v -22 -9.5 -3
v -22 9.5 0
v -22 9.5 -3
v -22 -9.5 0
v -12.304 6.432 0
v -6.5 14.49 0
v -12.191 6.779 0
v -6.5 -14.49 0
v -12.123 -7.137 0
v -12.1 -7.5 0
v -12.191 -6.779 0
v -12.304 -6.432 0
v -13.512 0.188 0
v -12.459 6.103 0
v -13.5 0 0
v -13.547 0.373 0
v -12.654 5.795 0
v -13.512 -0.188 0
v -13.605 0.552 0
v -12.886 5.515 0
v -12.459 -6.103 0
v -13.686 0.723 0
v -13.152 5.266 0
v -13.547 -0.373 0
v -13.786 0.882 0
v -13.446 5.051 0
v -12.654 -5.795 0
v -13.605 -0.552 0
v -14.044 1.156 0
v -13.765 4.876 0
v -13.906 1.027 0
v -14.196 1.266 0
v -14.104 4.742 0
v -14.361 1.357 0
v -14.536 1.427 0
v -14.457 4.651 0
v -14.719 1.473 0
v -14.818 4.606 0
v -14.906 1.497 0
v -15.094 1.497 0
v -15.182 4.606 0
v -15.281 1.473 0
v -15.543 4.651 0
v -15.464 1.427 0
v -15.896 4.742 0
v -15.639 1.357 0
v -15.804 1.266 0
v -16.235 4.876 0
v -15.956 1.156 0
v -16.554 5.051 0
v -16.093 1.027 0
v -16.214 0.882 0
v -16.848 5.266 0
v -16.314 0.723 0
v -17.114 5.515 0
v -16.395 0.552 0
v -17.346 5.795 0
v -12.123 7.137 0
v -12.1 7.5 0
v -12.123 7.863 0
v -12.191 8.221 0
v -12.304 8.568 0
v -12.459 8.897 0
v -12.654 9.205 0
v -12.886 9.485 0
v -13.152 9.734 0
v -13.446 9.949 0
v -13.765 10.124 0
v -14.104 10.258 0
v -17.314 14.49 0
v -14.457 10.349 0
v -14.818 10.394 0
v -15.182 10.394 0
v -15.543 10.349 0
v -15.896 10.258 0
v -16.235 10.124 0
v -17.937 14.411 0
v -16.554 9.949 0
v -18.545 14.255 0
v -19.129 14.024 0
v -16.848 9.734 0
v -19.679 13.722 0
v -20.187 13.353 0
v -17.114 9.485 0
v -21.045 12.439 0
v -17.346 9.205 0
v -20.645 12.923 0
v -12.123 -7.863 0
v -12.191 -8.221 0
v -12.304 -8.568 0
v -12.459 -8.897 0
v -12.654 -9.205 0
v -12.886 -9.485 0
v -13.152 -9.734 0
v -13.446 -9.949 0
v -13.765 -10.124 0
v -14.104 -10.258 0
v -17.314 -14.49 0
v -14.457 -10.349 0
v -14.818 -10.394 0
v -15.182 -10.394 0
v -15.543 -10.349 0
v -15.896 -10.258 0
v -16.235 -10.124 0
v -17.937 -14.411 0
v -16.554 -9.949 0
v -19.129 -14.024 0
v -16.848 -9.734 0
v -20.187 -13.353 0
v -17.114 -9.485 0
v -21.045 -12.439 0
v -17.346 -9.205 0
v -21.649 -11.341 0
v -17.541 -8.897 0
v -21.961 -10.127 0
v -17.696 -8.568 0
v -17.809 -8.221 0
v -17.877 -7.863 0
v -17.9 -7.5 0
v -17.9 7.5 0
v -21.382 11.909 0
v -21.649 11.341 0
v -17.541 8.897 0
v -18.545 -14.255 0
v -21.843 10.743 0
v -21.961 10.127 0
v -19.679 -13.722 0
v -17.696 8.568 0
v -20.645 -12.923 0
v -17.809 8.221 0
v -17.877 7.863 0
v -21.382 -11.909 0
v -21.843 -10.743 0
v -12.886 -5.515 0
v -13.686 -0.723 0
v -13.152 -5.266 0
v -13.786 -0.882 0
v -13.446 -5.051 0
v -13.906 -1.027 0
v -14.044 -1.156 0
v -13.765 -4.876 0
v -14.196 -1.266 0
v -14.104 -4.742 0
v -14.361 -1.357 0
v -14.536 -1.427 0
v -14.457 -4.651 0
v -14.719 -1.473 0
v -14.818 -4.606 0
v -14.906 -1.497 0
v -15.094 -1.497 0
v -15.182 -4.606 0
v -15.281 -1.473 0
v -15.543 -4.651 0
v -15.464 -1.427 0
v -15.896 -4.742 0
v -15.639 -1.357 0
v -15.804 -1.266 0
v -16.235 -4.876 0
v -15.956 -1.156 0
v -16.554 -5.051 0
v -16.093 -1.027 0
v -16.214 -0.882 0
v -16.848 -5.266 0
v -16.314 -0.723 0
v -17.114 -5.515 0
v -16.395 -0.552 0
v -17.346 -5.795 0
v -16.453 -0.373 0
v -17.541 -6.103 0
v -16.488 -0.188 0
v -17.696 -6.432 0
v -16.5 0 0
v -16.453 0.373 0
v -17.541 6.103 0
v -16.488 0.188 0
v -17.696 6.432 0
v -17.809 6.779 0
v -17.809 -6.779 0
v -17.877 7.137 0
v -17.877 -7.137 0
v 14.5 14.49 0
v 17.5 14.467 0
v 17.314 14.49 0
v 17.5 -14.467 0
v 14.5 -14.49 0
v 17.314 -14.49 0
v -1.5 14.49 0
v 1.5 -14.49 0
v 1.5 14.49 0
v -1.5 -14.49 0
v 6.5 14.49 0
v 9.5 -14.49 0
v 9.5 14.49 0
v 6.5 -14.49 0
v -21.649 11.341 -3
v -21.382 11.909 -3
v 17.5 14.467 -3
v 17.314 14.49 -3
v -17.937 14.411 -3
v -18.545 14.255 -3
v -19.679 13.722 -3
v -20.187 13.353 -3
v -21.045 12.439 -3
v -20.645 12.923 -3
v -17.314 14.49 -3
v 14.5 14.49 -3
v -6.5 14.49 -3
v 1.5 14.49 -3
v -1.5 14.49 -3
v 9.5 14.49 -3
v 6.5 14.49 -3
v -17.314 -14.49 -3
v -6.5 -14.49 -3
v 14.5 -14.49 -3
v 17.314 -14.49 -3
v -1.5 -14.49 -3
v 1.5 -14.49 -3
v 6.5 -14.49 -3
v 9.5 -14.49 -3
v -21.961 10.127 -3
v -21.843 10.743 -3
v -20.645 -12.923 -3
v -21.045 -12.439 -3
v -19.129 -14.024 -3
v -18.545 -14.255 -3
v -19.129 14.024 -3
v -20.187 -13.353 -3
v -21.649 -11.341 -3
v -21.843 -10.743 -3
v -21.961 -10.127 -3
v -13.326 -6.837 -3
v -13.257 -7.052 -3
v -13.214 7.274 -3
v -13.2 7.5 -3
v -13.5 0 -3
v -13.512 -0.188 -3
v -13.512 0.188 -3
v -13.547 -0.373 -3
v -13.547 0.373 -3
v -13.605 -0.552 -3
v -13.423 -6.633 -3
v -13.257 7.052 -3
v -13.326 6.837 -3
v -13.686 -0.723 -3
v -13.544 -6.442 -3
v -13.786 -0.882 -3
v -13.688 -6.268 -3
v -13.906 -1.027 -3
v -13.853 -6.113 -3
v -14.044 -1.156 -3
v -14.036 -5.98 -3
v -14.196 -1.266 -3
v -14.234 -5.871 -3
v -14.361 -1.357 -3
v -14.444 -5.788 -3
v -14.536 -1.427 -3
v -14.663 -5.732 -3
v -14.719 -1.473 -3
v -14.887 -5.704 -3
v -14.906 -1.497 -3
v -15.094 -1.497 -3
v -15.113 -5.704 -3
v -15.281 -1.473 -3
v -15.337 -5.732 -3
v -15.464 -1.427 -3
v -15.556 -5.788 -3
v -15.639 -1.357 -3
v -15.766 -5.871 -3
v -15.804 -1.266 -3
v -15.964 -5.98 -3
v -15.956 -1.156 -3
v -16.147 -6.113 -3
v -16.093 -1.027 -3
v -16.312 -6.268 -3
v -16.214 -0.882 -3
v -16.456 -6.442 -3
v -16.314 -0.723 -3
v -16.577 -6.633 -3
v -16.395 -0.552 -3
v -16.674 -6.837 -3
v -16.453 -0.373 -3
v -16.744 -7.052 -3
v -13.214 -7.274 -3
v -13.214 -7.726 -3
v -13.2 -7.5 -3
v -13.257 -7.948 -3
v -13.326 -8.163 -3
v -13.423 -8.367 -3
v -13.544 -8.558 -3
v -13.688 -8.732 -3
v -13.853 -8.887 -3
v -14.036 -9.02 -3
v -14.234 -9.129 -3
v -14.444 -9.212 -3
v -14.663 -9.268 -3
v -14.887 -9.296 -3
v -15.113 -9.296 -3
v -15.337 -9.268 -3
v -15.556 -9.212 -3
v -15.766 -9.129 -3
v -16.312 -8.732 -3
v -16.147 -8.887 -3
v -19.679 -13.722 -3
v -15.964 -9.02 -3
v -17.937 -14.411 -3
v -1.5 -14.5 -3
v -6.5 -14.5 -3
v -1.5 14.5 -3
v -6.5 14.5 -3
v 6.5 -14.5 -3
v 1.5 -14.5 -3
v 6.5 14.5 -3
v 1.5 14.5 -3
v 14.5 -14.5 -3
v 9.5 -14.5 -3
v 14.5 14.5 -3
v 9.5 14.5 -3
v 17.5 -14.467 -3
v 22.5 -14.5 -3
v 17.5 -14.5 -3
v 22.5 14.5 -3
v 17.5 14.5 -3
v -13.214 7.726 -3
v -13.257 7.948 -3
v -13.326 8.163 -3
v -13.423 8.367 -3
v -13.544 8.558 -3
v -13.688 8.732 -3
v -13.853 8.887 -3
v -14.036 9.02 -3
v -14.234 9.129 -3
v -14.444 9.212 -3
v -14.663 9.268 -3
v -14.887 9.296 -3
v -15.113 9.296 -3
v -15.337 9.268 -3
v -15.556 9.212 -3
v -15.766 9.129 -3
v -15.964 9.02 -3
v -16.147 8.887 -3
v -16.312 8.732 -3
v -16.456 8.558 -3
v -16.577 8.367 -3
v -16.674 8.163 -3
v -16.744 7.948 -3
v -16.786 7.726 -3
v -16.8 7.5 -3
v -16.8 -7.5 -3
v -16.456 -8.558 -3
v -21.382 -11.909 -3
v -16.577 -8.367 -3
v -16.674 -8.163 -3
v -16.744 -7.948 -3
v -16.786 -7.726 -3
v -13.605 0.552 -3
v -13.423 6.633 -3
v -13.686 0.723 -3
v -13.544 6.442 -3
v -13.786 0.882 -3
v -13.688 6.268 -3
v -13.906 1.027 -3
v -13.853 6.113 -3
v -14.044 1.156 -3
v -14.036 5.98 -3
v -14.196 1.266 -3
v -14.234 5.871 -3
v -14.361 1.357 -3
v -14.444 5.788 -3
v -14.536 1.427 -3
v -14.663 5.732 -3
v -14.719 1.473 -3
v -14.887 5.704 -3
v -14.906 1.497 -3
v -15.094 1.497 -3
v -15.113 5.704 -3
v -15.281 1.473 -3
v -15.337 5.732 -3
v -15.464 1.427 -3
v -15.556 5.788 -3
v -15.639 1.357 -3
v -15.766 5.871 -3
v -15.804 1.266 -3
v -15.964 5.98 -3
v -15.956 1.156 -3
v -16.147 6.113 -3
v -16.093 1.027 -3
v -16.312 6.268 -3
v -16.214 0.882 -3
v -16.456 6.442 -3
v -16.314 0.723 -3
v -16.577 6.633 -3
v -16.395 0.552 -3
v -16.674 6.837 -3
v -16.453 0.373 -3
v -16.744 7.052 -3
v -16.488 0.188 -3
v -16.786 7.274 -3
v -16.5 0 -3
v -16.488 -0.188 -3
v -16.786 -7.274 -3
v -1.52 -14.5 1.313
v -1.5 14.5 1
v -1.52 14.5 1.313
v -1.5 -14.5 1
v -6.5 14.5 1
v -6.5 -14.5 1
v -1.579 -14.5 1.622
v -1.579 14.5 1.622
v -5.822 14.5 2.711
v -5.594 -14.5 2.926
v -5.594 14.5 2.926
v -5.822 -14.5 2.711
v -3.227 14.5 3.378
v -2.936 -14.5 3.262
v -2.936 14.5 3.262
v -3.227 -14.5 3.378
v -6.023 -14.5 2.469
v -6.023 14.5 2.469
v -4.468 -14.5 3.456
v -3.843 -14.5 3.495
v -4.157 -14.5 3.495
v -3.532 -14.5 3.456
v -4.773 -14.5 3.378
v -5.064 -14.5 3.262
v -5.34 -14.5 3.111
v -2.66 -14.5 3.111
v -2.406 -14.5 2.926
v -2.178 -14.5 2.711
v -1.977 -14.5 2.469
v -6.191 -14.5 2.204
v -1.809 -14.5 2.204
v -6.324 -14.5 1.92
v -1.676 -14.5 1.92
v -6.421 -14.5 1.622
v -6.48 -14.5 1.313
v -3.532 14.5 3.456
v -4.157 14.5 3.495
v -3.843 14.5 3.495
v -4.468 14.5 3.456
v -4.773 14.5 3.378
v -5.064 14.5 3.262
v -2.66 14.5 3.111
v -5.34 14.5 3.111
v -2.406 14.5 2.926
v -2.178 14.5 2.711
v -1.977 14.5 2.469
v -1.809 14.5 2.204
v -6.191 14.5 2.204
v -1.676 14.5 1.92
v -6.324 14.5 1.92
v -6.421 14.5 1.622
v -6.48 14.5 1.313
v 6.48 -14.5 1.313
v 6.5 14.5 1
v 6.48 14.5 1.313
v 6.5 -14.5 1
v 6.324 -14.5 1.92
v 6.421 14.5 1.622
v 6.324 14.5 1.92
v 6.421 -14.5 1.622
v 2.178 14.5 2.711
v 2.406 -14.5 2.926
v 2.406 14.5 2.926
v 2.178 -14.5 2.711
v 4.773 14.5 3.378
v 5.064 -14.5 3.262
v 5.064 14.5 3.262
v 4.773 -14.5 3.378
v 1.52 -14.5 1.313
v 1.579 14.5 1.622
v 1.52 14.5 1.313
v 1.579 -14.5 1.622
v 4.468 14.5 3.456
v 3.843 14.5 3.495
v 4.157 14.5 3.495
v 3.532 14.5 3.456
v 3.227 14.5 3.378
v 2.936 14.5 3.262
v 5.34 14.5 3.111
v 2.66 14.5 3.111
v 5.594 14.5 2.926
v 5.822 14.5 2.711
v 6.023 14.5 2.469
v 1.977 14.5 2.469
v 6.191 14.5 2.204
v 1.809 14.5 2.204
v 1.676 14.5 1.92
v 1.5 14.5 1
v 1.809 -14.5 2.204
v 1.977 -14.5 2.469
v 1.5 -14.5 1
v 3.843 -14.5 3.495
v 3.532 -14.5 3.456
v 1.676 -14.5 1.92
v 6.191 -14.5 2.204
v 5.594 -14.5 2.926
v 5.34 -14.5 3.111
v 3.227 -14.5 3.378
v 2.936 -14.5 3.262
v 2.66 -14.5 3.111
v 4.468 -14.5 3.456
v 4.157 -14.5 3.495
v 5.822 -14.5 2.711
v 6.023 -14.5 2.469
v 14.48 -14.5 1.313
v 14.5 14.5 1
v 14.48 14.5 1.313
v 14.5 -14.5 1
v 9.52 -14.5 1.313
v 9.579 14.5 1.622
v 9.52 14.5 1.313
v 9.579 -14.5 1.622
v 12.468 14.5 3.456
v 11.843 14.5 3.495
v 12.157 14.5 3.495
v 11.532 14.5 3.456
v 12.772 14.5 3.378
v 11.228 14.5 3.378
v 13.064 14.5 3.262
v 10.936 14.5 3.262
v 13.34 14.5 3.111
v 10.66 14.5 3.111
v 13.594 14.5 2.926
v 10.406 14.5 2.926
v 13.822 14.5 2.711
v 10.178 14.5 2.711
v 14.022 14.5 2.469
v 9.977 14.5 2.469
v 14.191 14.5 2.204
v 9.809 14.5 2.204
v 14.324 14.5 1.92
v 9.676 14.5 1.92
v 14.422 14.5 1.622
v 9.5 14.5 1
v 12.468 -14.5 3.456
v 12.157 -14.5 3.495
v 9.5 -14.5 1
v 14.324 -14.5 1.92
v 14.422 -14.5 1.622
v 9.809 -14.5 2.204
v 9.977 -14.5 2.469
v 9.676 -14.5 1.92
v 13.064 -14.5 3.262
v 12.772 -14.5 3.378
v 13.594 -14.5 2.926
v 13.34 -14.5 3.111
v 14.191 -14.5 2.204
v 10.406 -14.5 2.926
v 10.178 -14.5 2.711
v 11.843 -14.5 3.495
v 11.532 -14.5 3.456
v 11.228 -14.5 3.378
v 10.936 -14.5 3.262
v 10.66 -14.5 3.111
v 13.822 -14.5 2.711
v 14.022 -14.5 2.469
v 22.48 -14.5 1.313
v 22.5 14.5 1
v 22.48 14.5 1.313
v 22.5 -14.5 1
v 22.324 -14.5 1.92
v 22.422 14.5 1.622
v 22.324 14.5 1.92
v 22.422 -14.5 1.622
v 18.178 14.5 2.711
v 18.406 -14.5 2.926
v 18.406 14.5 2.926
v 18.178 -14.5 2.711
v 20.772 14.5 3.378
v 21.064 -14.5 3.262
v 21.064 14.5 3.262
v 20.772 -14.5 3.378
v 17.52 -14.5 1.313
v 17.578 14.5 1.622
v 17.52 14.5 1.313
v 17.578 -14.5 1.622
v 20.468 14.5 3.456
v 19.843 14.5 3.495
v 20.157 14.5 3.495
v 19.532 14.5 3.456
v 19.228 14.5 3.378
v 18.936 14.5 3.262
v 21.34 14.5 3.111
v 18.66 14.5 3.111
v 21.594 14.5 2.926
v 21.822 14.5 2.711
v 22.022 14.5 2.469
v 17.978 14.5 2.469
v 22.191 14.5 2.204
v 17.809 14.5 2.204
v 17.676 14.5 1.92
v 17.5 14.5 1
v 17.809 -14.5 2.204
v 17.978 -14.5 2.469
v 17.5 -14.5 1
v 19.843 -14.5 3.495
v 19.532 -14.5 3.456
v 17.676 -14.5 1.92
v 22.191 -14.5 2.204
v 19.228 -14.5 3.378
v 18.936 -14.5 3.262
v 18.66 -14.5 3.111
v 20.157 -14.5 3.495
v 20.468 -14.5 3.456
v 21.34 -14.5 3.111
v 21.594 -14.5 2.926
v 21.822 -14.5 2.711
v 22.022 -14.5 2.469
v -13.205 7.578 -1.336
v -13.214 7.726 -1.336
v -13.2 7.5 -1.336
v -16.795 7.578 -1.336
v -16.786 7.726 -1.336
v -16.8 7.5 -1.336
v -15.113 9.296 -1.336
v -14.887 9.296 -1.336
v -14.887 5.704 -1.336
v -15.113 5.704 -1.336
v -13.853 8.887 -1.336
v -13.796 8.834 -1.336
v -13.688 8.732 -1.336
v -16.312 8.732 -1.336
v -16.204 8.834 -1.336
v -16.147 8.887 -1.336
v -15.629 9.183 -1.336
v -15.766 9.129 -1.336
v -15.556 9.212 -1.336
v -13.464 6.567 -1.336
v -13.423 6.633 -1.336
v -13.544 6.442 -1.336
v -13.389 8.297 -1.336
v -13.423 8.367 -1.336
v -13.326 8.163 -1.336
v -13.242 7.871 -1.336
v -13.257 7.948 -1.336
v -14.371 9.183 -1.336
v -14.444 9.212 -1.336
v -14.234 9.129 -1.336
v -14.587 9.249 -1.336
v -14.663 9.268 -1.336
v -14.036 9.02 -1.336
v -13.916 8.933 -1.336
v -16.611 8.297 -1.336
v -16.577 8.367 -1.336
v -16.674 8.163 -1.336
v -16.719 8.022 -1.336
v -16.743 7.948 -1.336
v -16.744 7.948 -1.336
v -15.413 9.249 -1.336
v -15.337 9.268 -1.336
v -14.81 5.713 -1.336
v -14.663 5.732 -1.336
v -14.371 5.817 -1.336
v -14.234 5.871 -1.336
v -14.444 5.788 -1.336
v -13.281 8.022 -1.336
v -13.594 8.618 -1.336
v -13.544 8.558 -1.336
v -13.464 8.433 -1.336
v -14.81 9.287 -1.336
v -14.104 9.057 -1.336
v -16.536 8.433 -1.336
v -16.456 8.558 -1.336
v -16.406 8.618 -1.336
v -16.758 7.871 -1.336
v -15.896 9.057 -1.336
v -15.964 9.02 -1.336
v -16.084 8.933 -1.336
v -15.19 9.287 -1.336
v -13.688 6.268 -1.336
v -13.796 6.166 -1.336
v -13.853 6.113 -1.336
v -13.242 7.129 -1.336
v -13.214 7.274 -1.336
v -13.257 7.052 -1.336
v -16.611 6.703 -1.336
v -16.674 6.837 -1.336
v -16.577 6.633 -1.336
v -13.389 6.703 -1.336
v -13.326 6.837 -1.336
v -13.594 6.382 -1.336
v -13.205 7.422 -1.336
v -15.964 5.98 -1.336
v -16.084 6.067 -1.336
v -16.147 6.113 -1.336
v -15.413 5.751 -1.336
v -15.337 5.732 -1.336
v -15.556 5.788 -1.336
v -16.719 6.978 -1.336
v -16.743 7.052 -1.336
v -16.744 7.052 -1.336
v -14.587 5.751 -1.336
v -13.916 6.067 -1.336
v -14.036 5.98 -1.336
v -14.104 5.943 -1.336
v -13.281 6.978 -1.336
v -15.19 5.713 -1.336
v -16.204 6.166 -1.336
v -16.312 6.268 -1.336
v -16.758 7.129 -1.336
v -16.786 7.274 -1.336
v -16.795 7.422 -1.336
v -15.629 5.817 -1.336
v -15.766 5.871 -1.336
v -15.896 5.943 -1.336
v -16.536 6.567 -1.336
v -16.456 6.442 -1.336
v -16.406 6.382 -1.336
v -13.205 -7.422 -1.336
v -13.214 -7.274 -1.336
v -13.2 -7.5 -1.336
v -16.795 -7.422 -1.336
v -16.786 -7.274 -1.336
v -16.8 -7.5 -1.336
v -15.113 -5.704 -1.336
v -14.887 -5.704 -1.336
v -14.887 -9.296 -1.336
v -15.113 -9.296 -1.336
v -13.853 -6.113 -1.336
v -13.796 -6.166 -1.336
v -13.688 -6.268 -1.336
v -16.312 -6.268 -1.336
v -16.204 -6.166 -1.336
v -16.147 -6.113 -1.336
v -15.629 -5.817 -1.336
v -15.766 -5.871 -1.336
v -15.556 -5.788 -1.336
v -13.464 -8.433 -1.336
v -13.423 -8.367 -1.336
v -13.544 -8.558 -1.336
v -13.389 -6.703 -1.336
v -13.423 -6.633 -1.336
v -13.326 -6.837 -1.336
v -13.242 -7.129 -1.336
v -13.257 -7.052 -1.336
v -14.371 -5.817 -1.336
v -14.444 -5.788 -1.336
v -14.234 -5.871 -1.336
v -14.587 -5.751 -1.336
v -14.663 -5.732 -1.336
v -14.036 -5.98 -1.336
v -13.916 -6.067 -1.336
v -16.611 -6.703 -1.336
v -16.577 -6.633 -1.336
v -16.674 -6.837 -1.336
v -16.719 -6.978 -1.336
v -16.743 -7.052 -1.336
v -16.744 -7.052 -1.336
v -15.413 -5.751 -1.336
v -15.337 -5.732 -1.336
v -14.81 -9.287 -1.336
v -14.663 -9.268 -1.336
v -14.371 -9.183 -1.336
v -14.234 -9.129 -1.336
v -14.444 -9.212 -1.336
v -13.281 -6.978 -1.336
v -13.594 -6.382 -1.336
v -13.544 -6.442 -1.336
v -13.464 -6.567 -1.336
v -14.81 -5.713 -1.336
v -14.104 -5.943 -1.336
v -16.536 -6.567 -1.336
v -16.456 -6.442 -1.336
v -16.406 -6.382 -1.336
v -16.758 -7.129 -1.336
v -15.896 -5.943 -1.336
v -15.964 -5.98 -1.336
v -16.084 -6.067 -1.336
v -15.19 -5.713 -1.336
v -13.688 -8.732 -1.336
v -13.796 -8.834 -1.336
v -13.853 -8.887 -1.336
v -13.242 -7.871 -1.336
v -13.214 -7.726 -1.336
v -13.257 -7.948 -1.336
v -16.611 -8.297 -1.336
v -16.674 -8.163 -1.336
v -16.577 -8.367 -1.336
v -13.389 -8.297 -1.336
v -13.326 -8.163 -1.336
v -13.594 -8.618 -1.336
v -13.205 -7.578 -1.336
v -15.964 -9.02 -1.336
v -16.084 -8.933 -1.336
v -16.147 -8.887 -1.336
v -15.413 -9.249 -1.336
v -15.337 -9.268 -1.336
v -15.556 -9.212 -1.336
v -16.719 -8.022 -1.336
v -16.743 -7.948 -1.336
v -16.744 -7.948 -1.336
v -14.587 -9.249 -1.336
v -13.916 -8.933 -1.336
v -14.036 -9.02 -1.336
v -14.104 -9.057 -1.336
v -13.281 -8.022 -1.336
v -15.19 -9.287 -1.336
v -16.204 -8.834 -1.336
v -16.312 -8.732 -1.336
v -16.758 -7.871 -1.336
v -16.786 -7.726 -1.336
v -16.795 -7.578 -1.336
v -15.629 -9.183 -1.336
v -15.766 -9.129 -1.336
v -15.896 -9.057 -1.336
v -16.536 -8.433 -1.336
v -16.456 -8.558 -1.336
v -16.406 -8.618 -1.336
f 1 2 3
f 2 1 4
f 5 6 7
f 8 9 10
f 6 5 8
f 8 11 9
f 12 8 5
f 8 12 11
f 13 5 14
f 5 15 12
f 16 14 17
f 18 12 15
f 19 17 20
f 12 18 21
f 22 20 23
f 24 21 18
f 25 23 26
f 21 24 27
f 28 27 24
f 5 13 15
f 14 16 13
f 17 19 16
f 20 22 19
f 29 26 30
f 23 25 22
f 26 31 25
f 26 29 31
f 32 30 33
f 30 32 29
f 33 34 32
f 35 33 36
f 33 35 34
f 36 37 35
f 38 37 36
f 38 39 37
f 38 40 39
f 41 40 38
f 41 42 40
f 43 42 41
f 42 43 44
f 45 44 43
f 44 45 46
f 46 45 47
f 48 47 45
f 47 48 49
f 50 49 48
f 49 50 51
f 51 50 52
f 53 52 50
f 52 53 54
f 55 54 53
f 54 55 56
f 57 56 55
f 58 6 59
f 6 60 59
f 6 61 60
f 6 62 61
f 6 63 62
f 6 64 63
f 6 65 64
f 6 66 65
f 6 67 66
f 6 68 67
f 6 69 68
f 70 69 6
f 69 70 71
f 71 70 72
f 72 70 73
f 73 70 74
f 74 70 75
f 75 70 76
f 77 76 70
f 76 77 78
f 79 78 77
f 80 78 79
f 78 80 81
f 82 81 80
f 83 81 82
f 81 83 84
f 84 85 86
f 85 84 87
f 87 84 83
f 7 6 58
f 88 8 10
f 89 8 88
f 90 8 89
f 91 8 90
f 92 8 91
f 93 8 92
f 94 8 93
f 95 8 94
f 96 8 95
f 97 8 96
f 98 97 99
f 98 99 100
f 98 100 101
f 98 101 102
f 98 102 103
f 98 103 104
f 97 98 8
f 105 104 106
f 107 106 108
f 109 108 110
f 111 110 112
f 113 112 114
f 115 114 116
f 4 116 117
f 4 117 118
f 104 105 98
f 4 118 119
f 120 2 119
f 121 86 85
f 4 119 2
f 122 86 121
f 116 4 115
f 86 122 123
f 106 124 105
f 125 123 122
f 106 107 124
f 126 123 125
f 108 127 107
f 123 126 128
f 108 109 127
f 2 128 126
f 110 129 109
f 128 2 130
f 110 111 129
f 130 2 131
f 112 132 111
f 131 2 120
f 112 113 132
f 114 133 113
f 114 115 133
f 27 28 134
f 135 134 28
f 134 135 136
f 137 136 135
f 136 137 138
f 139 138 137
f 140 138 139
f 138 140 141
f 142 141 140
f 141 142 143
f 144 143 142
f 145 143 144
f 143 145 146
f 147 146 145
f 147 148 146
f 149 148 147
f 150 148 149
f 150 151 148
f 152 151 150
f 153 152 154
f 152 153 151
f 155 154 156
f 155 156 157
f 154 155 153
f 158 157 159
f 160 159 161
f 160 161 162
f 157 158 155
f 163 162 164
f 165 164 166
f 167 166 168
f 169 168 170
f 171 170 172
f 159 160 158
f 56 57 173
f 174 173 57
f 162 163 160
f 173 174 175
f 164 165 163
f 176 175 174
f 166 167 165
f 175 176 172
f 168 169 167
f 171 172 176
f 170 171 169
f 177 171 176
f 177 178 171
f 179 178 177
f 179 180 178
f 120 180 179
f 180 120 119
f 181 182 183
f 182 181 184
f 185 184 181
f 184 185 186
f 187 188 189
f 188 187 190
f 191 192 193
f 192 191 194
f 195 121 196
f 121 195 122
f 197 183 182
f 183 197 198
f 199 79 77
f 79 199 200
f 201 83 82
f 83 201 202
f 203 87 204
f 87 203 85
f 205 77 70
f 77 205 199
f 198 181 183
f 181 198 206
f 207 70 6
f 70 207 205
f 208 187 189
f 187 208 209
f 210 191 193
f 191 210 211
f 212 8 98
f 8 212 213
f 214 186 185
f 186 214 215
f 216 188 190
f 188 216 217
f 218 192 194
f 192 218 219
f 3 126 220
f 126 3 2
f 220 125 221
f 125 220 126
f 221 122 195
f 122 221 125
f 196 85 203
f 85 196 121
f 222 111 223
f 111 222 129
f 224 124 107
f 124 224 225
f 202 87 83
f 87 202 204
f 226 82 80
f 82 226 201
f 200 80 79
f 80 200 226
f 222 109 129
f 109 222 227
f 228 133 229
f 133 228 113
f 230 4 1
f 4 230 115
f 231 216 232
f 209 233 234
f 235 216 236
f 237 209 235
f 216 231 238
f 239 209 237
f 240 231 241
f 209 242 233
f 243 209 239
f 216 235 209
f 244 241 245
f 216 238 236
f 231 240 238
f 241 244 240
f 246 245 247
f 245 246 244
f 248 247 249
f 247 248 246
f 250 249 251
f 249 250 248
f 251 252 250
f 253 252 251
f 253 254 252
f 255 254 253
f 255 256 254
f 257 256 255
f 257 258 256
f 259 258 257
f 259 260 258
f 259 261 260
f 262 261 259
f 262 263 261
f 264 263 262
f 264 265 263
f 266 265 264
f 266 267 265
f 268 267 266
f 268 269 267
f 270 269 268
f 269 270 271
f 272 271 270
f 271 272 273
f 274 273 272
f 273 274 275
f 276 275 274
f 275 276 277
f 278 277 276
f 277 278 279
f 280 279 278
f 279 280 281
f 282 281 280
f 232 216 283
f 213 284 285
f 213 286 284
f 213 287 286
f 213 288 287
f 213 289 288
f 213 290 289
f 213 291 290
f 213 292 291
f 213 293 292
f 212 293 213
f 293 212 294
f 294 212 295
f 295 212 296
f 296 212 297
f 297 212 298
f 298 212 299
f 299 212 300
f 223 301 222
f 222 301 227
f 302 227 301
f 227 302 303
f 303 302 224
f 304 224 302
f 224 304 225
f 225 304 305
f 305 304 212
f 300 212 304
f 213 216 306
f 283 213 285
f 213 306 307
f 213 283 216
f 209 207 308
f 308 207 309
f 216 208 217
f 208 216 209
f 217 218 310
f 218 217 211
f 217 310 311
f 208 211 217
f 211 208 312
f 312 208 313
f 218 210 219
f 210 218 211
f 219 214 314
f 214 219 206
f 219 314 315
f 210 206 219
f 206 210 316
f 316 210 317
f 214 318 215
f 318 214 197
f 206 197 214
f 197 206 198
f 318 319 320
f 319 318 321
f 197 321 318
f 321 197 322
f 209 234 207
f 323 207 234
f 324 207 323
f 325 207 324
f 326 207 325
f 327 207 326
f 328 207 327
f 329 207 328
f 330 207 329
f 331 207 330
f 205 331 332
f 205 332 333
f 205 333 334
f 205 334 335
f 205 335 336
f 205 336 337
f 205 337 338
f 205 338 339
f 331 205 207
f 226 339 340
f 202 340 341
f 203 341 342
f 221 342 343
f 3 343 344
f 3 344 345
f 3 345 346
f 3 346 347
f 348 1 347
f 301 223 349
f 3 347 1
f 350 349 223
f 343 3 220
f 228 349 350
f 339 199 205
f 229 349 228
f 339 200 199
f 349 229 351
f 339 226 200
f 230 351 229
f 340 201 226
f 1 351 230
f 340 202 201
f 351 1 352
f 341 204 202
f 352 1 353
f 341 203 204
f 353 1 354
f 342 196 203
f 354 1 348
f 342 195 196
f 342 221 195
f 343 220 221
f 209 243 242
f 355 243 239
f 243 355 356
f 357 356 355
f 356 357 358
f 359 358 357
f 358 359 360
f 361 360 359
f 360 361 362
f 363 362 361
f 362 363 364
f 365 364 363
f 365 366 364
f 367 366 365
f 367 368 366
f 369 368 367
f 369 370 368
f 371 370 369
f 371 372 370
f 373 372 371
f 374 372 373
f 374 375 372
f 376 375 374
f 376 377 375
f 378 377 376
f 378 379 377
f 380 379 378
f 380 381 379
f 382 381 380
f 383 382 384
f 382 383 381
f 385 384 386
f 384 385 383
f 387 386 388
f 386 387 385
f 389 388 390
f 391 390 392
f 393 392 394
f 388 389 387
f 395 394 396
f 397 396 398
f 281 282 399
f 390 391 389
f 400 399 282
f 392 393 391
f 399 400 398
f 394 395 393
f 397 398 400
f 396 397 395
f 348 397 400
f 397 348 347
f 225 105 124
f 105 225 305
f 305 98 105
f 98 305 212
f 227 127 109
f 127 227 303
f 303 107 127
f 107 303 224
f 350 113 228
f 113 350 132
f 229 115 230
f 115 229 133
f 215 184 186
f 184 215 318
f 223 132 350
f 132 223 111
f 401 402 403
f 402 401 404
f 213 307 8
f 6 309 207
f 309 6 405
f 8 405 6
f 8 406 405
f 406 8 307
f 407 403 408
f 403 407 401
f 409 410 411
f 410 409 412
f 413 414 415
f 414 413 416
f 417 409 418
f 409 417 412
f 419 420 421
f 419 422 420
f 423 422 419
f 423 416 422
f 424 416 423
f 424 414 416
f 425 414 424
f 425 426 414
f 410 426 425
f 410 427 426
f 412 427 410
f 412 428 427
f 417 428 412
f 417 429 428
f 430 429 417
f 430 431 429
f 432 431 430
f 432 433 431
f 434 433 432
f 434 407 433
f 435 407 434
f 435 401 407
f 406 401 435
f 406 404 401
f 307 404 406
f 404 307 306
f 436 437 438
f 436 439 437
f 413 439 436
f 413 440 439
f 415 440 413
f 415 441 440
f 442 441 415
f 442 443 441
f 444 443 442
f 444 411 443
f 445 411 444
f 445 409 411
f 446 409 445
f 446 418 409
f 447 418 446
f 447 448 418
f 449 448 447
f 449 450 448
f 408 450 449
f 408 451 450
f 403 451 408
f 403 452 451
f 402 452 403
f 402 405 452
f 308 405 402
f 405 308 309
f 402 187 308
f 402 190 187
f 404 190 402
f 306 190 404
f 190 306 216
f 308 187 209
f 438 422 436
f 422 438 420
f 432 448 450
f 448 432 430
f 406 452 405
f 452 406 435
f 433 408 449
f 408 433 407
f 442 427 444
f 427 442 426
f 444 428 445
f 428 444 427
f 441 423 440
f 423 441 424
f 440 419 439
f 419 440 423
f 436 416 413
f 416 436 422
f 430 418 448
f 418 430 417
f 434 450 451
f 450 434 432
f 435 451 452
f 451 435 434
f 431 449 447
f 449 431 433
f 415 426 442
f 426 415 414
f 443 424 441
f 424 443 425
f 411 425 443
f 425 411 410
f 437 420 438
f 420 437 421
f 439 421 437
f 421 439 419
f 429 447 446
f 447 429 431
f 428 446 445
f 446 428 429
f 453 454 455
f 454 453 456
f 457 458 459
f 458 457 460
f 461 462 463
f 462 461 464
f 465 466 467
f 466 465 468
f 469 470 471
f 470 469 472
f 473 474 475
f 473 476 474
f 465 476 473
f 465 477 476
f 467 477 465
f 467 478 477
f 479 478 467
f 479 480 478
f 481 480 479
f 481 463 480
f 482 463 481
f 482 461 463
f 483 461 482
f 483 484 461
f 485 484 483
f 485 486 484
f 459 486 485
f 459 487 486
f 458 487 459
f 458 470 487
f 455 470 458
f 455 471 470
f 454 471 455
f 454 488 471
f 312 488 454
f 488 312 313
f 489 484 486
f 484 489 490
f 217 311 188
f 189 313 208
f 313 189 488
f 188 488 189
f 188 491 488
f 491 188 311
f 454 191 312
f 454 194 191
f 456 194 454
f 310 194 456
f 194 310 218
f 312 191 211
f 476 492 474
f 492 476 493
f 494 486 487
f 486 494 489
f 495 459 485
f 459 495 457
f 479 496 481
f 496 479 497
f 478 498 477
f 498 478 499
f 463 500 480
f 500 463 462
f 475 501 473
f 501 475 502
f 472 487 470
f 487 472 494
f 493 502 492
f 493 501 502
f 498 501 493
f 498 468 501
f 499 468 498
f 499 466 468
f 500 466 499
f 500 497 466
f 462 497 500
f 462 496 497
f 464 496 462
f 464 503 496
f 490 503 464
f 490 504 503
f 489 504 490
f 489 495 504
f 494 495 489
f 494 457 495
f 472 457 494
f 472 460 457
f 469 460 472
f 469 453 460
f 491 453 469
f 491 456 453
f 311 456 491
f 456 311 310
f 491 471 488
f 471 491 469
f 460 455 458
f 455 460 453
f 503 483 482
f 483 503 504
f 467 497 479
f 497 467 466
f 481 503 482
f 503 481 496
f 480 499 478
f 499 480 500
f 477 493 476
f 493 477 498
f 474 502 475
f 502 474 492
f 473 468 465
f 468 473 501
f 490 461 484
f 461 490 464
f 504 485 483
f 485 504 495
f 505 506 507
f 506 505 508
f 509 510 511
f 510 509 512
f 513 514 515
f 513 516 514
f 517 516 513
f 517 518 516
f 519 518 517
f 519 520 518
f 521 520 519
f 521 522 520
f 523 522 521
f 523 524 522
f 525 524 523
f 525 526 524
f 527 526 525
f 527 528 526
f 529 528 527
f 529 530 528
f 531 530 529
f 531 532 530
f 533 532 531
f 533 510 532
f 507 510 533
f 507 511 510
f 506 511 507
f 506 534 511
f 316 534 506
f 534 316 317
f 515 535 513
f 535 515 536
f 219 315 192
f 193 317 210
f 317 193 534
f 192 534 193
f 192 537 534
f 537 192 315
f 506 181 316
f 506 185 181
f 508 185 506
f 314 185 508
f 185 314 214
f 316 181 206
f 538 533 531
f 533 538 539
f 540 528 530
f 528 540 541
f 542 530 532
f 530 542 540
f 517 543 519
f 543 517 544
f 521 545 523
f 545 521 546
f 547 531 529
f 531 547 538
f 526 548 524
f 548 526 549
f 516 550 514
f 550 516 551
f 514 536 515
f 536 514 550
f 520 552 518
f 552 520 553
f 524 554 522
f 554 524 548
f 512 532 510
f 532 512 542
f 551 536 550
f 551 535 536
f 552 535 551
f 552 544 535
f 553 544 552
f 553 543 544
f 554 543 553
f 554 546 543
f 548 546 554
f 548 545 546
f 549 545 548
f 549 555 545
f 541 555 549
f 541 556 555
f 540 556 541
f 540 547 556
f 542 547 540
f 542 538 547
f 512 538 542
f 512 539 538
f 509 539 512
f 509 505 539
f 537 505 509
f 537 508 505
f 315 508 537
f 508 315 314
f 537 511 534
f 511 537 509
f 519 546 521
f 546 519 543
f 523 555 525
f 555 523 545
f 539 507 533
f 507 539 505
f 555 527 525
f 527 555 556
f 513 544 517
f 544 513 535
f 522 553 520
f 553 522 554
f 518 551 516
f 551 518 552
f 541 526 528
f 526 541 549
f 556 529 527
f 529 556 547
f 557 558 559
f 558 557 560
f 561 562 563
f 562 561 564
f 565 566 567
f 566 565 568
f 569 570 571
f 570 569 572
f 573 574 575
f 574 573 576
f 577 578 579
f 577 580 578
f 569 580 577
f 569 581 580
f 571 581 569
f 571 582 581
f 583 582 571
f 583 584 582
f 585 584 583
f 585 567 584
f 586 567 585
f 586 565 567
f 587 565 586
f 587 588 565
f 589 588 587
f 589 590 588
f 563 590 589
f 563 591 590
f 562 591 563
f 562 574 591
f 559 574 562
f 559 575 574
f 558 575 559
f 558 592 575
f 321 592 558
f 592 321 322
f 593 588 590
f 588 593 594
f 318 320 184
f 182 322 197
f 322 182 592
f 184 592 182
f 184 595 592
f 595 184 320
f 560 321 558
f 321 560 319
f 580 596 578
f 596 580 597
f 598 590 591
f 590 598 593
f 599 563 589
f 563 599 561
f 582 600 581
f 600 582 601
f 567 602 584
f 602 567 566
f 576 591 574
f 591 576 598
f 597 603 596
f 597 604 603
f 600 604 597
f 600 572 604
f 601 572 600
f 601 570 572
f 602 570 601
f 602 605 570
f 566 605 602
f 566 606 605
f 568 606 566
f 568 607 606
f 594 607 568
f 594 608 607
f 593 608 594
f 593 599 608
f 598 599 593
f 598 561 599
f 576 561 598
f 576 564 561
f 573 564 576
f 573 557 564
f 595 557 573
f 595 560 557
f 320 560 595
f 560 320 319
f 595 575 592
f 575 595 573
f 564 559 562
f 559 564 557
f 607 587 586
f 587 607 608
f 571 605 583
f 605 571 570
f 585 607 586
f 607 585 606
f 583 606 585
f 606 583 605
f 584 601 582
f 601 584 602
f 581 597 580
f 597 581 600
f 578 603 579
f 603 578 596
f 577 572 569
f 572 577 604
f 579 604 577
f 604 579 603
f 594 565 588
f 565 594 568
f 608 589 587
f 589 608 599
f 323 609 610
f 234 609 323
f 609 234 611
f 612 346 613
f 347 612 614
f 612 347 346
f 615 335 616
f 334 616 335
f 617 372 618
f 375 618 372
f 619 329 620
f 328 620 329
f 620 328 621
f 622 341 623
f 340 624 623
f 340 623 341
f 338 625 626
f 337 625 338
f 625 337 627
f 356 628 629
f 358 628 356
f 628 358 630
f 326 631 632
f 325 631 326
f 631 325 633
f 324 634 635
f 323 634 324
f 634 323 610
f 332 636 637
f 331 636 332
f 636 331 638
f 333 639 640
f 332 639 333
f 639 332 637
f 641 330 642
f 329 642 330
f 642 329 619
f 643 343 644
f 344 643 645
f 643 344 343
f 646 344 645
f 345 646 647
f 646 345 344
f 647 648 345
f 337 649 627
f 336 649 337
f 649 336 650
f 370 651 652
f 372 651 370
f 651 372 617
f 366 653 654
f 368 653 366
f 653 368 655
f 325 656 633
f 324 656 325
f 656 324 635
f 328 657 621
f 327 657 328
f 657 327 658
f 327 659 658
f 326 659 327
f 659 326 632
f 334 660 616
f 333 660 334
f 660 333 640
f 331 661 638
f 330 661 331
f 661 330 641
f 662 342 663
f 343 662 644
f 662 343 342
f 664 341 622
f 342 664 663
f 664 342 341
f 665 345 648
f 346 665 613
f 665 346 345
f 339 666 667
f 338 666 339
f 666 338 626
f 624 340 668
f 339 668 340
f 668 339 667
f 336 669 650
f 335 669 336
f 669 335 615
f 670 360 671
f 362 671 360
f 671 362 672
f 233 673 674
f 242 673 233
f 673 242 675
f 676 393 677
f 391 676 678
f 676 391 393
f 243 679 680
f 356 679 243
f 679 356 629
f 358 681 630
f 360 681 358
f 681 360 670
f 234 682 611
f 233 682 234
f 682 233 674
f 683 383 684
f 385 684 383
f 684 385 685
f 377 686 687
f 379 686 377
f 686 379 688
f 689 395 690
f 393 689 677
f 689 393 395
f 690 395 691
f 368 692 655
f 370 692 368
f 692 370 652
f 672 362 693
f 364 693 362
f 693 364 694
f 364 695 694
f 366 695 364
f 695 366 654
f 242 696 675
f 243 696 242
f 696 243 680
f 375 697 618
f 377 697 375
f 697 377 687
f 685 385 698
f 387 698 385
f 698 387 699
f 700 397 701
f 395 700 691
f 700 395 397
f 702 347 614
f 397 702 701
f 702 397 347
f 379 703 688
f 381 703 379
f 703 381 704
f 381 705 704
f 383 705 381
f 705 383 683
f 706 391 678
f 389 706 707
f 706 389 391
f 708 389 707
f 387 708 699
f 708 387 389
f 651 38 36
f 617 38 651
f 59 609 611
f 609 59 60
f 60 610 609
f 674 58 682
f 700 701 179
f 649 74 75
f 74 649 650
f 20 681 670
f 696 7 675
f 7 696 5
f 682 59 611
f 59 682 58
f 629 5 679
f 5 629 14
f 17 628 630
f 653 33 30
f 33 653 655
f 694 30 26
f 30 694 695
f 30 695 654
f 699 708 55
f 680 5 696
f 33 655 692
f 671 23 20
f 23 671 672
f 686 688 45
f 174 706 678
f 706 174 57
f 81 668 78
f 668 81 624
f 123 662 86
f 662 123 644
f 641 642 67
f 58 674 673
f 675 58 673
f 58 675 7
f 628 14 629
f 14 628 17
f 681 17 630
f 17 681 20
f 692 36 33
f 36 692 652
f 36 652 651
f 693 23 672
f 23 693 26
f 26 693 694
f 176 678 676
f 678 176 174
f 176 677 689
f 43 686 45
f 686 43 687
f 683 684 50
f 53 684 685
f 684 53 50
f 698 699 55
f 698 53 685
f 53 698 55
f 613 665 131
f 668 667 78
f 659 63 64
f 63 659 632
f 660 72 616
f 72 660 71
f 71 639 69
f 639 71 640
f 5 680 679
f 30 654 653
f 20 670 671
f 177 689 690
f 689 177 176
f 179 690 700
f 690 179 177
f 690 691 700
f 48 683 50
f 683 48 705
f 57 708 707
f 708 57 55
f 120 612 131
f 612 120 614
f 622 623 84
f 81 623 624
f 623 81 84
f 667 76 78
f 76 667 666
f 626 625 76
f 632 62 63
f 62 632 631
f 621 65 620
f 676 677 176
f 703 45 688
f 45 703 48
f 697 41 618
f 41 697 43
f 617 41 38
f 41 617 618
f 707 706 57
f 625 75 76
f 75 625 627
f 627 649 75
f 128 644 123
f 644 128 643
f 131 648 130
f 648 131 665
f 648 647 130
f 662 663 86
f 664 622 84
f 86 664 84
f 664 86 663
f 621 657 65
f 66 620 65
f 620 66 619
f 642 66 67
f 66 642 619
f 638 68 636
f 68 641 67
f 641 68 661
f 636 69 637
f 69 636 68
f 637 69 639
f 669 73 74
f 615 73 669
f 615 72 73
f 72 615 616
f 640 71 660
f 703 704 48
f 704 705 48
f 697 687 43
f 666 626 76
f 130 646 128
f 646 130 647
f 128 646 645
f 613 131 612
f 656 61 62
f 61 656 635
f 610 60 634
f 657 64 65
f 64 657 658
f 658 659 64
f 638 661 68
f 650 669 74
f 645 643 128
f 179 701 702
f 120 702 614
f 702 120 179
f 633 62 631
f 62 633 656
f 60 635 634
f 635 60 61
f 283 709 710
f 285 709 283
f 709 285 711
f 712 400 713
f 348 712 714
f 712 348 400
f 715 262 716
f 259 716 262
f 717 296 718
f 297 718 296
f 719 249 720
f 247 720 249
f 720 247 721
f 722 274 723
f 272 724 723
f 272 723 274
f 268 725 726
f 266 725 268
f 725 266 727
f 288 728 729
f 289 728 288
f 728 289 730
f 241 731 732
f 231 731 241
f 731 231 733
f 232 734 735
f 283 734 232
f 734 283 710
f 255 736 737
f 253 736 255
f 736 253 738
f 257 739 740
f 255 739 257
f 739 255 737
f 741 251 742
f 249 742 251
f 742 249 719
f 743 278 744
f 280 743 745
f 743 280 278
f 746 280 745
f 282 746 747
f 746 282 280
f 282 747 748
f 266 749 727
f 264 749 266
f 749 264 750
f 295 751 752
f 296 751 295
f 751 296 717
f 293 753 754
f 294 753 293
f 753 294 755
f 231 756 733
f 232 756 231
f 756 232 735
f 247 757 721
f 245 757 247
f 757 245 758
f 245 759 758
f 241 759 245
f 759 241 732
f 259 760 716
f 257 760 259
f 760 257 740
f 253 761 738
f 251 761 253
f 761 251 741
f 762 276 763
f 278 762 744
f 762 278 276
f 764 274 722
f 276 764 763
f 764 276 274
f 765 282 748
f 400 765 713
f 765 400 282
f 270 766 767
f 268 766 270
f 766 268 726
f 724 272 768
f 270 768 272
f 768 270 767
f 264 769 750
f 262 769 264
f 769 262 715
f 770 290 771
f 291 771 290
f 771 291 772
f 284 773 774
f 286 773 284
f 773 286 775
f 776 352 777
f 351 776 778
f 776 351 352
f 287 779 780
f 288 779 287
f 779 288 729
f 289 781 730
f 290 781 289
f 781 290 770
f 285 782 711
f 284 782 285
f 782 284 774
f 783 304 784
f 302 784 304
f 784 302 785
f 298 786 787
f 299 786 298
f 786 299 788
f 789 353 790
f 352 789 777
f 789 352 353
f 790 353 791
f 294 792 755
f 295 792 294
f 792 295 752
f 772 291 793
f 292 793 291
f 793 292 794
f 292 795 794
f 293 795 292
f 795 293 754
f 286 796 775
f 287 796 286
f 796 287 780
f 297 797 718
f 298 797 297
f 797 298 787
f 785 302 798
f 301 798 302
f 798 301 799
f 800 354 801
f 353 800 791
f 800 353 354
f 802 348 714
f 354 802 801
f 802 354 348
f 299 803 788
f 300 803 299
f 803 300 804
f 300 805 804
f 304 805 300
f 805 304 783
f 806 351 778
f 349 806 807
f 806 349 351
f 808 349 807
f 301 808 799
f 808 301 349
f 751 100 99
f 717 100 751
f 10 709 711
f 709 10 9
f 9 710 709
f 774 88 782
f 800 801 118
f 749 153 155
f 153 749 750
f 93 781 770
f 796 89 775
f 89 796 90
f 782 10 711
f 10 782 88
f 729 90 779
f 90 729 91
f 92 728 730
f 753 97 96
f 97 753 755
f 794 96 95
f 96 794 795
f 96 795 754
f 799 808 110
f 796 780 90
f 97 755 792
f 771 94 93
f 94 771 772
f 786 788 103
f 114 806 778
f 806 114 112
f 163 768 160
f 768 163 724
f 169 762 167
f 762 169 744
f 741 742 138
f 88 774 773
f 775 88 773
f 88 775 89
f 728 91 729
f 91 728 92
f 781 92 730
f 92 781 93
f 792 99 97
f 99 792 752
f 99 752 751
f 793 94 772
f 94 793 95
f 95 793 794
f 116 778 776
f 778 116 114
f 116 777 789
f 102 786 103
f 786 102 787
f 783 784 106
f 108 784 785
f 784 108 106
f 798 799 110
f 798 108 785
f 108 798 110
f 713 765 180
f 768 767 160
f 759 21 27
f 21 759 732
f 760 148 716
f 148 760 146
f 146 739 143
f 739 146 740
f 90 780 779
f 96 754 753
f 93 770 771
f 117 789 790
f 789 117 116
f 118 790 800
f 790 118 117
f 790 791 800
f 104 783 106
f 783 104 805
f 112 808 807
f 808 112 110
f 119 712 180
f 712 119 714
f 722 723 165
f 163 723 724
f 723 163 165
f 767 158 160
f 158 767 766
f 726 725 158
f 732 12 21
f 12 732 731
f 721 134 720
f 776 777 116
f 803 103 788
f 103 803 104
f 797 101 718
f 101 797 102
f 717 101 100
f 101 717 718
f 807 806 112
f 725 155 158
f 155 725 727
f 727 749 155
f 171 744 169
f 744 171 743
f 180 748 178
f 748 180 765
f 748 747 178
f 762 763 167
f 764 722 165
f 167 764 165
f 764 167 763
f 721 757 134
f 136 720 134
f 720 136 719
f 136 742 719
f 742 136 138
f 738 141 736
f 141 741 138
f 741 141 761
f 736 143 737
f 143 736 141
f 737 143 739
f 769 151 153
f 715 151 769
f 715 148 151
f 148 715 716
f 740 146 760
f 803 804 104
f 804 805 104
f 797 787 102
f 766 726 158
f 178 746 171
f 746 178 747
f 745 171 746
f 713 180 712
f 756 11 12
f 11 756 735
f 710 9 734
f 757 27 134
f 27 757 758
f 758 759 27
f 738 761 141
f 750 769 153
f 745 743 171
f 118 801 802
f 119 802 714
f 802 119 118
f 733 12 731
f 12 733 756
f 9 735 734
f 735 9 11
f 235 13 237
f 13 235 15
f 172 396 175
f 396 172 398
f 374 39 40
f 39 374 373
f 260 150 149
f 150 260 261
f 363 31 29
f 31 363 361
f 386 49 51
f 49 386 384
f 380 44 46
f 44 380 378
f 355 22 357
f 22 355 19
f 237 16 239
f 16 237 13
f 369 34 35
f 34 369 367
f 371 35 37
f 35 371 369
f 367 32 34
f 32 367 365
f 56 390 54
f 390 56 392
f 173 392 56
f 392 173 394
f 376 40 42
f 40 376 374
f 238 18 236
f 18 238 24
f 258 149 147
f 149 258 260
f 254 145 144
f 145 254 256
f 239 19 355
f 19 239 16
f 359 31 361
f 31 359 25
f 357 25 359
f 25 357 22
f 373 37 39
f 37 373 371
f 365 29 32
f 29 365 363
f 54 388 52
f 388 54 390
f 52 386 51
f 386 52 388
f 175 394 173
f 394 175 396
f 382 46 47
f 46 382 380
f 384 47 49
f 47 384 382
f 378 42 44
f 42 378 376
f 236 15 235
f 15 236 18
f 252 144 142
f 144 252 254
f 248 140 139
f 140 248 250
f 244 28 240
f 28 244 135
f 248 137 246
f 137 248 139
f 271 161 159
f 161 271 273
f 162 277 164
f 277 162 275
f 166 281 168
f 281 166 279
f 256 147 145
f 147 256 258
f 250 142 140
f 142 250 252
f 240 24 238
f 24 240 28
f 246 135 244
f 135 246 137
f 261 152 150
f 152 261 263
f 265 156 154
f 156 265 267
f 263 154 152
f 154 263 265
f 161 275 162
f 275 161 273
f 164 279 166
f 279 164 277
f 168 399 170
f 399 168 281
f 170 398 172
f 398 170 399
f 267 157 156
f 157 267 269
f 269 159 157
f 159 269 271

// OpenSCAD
$fn = 50;


difference() {
	union() {
		translate(v = [0, 0, -3]) {
			hull() {
				translate(v = [-17.0000000000, 9.5000000000, 0]) {
					cylinder(h = 3, r = 5);
				}
				translate(v = [17.0000000000, 9.5000000000, 0]) {
					cylinder(h = 3, r = 5);
				}
				translate(v = [-17.0000000000, -9.5000000000, 0]) {
					cylinder(h = 3, r = 5);
				}
				translate(v = [17.0000000000, -9.5000000000, 0]) {
					cylinder(h = 3, r = 5);
				}
			}
		}
		translate(v = [-4.0000000000, 14.5000000000, -1.5000000000]) {
			rotate(a = [90, 0, 0]) {
				hull() {
					translate(v = [-0.0000000000, 2.5000000000, 0]) {
						cylinder(h = 29, r = 2.5000000000);
					}
					translate(v = [0.0000000000, 2.5000000000, 0]) {
						cylinder(h = 29, r = 2.5000000000);
					}
					translate(v = [-0.0000000000, -2.5000000000, 0]) {
						cylinder(h = 29, r = 2.5000000000);
					}
					translate(v = [0.0000000000, -2.5000000000, 0]) {
						cylinder(h = 29, r = 2.5000000000);
					}
				}
			}
		}
		translate(v = [4.0000000000, 14.5000000000, -1.5000000000]) {
			rotate(a = [90, 0, 0]) {
				hull() {
					translate(v = [-0.0000000000, 2.5000000000, 0]) {
						cylinder(h = 29, r = 2.5000000000);
					}
					translate(v = [0.0000000000, 2.5000000000, 0]) {
						cylinder(h = 29, r = 2.5000000000);
					}
					translate(v = [-0.0000000000, -2.5000000000, 0]) {
						cylinder(h = 29, r = 2.5000000000);
					}
					translate(v = [0.0000000000, -2.5000000000, 0]) {
						cylinder(h = 29, r = 2.5000000000);
					}
				}
			}
		}
		translate(v = [12.0000000000, 14.5000000000, -1.5000000000]) {
			rotate(a = [90, 0, 0]) {
				hull() {
					translate(v = [-0.0000000000, 2.5000000000, 0]) {
						cylinder(h = 29, r = 2.5000000000);
					}
					translate(v = [0.0000000000, 2.5000000000, 0]) {
						cylinder(h = 29, r = 2.5000000000);
					}
					translate(v = [-0.0000000000, -2.5000000000, 0]) {
						cylinder(h = 29, r = 2.5000000000);
					}
					translate(v = [0.0000000000, -2.5000000000, 0]) {
						cylinder(h = 29, r = 2.5000000000);
					}
				}
			}
		}
		translate(v = [20.0000000000, 14.5000000000, -1.5000000000]) {
			rotate(a = [90, 0, 0]) {
				hull() {
					translate(v = [-0.0000000000, 2.5000000000, 0]) {
						cylinder(h = 29, r = 2.5000000000);
					}
					translate(v = [0.0000000000, 2.5000000000, 0]) {
						cylinder(h = 29, r = 2.5000000000);
					}
					translate(v = [-0.0000000000, -2.5000000000, 0]) {
						cylinder(h = 29, r = 2.5000000000);
					}
					translate(v = [0.0000000000, -2.5000000000, 0]) {
						cylinder(h = 29, r = 2.5000000000);
					}
				}
			}
		}
	}
	union() {
		translate(v = [-15.0000000000, 7.5000000000, 0]) {
			rotate(a = [0, 0, 0]) {
				difference() {
					union() {
						translate(v = [0, 0, -3.0000000000]) {
							cylinder(h = 3, r = 1.5000000000);
						}
						translate(v = [0, 0, -3.0000000000]) {
							cylinder(h = 3, r = 1.8000000000);
						}
						translate(v = [0, 0, -1.7000000000]) {
							cylinder(h = 1.7000000000, r1 = 1.5000000000, r2 = 2.9000000000);
						}
						translate(v = [0, 0, -3.0000000000]) {
							cylinder(h = 3, r = 1.5000000000);
						}
					}
					union();
				}
			}
		}
		translate(v = [-15.0000000000, -7.5000000000, 0]) {
			rotate(a = [0, 0, 0]) {
				difference() {
					union() {
						translate(v = [0, 0, -3.0000000000]) {
							cylinder(h = 3, r = 1.5000000000);
						}
						translate(v = [0, 0, -3.0000000000]) {
							cylinder(h = 3, r = 1.8000000000);
						}
						translate(v = [0, 0, -1.7000000000]) {
							cylinder(h = 1.7000000000, r1 = 1.5000000000, r2 = 2.9000000000);
						}
						translate(v = [0, 0, -3.0000000000]) {
							cylinder(h = 3, r = 1.5000000000);
						}
					}
					union();
				}
			}
		}
		translate(v = [-250.0000000000, -250.0000000000, -503]) {
			cube(size = [500, 500, 500]);
		}
		translate(v = [-250.0000000000, -250.0000000000, -503]) {
			cube(size = [500, 500, 500]);
		}
		translate(v = [-250.0000000000, -250.0000000000, -503]) {
			cube(size = [500, 500, 500]);
		}
		translate(v = [-15.0000000000, -7.5000000000, -100.0000000000]) {
			cylinder(h = 200, r = 1.5000000000);
		}
		translate(v = [-15.0000000000, 7.5000000000, -100.0000000000]) {
			cylinder(h = 200, r = 1.5000000000);
		}
		translate(v = [-15.0000000000, -7.5000000000, -100.0000000000]) {
			cylinder(h = 200, r = 1.5000000000);
		}
		translate(v = [-15.0000000000, 0.0000000000, -100.0000000000]) {
			cylinder(h = 200, r = 1.5000000000);
		}
		translate(v = [-15.0000000000, 7.5000000000, -100.0000000000]) {
			cylinder(h = 200, r = 1.5000000000);
		}
		translate(v = [-15.0000000000, -7.5000000000, -100.0000000000]) {
			cylinder(h = 200, r = 1.5000000000);
		}
		translate(v = [-15.0000000000, 0.0000000000, -100.0000000000]) {
			cylinder(h = 200, r = 1.5000000000);
		}
		translate(v = [-15.0000000000, 7.5000000000, -100.0000000000]) {
			cylinder(h = 200, r = 1.5000000000);
		}
		translate(v = [-15.0000000000, -7.5000000000, -100.0000000000]) {
			cylinder(h = 200, r = 1.5000000000);
		}
		translate(v = [-15.0000000000, 0.0000000000, -100.0000000000]) {
			cylinder(h = 200, r = 1.5000000000);
		}
		translate(v = [-15.0000000000, 7.5000000000, -100.0000000000]) {
			cylinder(h = 200, r = 1.5000000000);
		}
	}
}
